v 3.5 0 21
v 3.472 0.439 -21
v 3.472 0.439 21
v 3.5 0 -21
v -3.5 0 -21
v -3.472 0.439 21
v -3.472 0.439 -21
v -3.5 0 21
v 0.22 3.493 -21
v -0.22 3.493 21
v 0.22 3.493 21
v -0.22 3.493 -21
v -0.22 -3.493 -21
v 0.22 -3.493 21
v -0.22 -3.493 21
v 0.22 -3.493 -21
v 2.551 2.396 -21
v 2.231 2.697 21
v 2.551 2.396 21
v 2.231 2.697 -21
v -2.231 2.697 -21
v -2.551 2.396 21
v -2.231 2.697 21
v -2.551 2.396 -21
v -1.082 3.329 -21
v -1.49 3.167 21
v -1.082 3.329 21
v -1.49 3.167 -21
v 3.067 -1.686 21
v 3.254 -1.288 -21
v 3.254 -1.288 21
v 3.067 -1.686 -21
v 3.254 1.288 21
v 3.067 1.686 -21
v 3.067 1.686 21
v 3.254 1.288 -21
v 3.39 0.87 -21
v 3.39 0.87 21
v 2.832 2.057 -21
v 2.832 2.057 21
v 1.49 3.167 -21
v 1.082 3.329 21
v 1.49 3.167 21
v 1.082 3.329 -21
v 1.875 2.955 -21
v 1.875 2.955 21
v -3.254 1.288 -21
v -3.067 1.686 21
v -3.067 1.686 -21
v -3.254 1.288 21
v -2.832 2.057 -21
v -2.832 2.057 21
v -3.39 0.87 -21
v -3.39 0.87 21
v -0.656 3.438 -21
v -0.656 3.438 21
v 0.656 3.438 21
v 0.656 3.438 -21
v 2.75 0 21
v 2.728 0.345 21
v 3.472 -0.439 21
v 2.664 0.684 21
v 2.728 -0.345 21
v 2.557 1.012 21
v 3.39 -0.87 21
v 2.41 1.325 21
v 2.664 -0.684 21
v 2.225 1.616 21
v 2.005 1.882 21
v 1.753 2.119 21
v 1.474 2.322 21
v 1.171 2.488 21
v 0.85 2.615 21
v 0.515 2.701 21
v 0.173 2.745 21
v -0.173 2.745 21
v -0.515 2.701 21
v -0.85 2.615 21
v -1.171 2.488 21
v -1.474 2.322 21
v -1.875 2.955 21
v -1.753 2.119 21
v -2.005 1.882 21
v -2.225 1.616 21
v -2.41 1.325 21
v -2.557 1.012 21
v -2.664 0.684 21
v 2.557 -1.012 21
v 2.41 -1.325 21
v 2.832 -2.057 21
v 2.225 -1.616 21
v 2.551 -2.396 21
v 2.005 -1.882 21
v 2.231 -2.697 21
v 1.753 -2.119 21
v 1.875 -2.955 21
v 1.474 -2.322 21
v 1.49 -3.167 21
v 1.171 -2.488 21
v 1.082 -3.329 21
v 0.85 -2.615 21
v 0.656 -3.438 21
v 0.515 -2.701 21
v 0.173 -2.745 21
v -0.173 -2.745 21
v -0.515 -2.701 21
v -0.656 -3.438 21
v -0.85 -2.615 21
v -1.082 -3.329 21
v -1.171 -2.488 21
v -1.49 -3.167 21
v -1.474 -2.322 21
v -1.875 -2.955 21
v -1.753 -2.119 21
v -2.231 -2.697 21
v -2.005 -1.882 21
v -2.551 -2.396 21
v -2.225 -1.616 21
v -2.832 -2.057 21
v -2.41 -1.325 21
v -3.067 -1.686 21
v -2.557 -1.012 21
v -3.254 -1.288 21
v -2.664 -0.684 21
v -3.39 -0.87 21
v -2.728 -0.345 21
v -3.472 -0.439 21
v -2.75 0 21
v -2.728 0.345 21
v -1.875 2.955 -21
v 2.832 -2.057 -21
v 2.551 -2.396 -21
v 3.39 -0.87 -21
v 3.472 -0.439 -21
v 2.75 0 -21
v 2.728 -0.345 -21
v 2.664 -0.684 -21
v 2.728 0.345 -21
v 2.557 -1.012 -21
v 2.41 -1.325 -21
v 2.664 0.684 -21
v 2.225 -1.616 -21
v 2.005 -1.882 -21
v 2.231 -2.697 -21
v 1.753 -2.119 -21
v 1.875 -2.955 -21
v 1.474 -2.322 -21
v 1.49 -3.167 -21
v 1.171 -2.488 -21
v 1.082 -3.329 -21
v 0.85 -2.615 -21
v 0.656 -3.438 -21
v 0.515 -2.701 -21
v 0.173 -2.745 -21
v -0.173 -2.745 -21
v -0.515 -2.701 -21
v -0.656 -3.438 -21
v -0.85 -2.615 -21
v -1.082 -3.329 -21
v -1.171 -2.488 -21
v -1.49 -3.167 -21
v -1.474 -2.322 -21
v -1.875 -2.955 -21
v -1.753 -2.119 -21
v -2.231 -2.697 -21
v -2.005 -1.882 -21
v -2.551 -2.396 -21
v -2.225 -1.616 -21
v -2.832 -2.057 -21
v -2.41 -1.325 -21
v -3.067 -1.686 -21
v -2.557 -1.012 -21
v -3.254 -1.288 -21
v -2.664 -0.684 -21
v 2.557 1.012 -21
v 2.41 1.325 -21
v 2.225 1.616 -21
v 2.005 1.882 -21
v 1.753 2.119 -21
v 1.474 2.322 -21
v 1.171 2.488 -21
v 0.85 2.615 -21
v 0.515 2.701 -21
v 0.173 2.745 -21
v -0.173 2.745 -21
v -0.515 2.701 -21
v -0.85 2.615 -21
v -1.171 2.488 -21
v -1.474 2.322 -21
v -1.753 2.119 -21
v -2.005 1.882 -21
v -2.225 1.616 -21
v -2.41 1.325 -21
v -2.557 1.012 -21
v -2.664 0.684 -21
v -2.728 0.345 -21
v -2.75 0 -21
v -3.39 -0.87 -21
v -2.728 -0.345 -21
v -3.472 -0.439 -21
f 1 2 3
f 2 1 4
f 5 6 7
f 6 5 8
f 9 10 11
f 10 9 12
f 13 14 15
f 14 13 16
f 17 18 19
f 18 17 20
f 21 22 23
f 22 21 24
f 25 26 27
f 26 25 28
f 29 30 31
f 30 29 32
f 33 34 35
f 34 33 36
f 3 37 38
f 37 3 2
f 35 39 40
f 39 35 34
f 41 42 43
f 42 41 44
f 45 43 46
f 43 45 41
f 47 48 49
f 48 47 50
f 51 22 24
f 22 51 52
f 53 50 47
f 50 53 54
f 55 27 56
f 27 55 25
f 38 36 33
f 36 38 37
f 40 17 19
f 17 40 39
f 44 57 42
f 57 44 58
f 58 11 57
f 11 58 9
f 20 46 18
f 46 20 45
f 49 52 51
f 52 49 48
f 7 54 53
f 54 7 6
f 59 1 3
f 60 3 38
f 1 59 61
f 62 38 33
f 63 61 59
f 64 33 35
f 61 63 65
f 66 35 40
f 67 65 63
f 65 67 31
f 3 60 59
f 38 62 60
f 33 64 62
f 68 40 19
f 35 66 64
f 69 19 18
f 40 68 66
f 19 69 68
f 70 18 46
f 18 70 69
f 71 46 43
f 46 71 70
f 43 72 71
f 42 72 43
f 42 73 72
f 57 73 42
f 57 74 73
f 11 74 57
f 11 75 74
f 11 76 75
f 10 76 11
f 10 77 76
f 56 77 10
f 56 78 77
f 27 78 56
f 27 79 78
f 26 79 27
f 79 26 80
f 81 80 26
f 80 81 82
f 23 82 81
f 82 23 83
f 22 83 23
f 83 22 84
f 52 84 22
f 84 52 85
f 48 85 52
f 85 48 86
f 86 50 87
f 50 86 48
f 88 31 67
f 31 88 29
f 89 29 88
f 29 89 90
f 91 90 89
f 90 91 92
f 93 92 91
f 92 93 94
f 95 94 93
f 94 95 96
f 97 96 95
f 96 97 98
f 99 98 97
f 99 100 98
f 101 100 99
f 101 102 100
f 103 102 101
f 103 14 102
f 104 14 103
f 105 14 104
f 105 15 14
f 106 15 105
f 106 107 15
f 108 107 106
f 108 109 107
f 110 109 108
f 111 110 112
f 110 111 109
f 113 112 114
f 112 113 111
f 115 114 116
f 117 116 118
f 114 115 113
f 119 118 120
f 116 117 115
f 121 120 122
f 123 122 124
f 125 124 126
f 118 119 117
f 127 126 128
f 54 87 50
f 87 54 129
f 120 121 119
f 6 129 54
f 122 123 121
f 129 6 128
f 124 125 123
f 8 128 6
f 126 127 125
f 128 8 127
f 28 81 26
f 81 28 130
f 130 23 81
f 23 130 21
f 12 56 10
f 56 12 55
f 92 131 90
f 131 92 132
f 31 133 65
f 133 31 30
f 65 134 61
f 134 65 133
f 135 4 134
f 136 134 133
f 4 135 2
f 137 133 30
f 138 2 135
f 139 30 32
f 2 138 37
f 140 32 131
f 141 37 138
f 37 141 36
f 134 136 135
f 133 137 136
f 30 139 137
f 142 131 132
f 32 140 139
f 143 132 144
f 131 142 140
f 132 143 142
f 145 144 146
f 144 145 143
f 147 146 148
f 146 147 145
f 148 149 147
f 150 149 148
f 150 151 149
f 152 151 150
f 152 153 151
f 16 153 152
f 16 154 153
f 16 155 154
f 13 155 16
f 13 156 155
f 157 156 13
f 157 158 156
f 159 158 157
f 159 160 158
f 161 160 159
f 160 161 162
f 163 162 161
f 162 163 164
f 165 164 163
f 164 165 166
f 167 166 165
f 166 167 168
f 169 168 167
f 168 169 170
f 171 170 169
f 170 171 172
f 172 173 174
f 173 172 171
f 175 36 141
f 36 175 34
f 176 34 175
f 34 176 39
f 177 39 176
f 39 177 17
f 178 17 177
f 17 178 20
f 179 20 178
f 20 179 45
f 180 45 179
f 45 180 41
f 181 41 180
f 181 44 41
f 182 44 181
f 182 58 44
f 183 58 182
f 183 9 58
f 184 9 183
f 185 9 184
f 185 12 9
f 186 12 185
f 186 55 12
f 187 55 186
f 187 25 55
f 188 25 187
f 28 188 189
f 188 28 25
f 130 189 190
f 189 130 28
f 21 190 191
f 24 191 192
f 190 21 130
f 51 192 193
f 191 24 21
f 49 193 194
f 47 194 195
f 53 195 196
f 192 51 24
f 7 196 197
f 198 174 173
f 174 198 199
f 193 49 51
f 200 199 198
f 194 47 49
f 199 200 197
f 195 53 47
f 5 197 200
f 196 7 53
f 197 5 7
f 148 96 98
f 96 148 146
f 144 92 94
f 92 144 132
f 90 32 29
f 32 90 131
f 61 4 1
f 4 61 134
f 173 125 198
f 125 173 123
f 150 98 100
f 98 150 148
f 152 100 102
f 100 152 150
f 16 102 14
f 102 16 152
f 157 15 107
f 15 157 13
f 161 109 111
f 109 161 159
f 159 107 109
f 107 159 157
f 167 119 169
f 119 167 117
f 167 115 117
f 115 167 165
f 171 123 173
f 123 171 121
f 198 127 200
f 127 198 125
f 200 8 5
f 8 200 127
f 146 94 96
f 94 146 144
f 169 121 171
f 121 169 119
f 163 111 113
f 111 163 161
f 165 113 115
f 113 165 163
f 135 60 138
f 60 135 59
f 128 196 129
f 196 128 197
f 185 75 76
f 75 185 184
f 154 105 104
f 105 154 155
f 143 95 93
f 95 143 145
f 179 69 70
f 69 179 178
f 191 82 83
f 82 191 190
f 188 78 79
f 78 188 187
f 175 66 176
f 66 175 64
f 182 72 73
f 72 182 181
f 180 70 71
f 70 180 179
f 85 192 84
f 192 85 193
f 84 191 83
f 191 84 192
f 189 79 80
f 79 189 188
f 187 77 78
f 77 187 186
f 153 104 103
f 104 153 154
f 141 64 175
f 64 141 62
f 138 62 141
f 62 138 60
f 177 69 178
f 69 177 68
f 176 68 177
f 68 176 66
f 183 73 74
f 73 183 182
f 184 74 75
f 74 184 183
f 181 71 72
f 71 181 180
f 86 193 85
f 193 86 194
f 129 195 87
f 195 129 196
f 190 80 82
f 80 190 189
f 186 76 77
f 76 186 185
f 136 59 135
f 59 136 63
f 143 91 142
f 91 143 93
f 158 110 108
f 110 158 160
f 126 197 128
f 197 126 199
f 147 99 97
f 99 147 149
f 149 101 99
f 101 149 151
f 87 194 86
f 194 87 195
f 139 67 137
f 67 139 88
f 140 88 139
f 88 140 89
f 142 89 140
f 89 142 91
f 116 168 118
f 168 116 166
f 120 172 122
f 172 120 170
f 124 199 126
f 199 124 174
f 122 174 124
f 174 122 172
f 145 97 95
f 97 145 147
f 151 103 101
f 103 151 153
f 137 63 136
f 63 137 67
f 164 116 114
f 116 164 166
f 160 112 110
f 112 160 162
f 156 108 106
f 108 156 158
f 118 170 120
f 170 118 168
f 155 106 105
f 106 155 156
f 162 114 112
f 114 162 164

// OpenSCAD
$fn = 50;


difference() {
	union() {
		translate(v = [0, 0, -21.0000000000]) {
			cylinder(h = 42, r = 3.5000000000);
		}
	}
	union() {
		translate(v = [0, 0, -100.0000000000]) {
			cylinder(h = 200, r = 2.7500000000);
		}
	}
}
